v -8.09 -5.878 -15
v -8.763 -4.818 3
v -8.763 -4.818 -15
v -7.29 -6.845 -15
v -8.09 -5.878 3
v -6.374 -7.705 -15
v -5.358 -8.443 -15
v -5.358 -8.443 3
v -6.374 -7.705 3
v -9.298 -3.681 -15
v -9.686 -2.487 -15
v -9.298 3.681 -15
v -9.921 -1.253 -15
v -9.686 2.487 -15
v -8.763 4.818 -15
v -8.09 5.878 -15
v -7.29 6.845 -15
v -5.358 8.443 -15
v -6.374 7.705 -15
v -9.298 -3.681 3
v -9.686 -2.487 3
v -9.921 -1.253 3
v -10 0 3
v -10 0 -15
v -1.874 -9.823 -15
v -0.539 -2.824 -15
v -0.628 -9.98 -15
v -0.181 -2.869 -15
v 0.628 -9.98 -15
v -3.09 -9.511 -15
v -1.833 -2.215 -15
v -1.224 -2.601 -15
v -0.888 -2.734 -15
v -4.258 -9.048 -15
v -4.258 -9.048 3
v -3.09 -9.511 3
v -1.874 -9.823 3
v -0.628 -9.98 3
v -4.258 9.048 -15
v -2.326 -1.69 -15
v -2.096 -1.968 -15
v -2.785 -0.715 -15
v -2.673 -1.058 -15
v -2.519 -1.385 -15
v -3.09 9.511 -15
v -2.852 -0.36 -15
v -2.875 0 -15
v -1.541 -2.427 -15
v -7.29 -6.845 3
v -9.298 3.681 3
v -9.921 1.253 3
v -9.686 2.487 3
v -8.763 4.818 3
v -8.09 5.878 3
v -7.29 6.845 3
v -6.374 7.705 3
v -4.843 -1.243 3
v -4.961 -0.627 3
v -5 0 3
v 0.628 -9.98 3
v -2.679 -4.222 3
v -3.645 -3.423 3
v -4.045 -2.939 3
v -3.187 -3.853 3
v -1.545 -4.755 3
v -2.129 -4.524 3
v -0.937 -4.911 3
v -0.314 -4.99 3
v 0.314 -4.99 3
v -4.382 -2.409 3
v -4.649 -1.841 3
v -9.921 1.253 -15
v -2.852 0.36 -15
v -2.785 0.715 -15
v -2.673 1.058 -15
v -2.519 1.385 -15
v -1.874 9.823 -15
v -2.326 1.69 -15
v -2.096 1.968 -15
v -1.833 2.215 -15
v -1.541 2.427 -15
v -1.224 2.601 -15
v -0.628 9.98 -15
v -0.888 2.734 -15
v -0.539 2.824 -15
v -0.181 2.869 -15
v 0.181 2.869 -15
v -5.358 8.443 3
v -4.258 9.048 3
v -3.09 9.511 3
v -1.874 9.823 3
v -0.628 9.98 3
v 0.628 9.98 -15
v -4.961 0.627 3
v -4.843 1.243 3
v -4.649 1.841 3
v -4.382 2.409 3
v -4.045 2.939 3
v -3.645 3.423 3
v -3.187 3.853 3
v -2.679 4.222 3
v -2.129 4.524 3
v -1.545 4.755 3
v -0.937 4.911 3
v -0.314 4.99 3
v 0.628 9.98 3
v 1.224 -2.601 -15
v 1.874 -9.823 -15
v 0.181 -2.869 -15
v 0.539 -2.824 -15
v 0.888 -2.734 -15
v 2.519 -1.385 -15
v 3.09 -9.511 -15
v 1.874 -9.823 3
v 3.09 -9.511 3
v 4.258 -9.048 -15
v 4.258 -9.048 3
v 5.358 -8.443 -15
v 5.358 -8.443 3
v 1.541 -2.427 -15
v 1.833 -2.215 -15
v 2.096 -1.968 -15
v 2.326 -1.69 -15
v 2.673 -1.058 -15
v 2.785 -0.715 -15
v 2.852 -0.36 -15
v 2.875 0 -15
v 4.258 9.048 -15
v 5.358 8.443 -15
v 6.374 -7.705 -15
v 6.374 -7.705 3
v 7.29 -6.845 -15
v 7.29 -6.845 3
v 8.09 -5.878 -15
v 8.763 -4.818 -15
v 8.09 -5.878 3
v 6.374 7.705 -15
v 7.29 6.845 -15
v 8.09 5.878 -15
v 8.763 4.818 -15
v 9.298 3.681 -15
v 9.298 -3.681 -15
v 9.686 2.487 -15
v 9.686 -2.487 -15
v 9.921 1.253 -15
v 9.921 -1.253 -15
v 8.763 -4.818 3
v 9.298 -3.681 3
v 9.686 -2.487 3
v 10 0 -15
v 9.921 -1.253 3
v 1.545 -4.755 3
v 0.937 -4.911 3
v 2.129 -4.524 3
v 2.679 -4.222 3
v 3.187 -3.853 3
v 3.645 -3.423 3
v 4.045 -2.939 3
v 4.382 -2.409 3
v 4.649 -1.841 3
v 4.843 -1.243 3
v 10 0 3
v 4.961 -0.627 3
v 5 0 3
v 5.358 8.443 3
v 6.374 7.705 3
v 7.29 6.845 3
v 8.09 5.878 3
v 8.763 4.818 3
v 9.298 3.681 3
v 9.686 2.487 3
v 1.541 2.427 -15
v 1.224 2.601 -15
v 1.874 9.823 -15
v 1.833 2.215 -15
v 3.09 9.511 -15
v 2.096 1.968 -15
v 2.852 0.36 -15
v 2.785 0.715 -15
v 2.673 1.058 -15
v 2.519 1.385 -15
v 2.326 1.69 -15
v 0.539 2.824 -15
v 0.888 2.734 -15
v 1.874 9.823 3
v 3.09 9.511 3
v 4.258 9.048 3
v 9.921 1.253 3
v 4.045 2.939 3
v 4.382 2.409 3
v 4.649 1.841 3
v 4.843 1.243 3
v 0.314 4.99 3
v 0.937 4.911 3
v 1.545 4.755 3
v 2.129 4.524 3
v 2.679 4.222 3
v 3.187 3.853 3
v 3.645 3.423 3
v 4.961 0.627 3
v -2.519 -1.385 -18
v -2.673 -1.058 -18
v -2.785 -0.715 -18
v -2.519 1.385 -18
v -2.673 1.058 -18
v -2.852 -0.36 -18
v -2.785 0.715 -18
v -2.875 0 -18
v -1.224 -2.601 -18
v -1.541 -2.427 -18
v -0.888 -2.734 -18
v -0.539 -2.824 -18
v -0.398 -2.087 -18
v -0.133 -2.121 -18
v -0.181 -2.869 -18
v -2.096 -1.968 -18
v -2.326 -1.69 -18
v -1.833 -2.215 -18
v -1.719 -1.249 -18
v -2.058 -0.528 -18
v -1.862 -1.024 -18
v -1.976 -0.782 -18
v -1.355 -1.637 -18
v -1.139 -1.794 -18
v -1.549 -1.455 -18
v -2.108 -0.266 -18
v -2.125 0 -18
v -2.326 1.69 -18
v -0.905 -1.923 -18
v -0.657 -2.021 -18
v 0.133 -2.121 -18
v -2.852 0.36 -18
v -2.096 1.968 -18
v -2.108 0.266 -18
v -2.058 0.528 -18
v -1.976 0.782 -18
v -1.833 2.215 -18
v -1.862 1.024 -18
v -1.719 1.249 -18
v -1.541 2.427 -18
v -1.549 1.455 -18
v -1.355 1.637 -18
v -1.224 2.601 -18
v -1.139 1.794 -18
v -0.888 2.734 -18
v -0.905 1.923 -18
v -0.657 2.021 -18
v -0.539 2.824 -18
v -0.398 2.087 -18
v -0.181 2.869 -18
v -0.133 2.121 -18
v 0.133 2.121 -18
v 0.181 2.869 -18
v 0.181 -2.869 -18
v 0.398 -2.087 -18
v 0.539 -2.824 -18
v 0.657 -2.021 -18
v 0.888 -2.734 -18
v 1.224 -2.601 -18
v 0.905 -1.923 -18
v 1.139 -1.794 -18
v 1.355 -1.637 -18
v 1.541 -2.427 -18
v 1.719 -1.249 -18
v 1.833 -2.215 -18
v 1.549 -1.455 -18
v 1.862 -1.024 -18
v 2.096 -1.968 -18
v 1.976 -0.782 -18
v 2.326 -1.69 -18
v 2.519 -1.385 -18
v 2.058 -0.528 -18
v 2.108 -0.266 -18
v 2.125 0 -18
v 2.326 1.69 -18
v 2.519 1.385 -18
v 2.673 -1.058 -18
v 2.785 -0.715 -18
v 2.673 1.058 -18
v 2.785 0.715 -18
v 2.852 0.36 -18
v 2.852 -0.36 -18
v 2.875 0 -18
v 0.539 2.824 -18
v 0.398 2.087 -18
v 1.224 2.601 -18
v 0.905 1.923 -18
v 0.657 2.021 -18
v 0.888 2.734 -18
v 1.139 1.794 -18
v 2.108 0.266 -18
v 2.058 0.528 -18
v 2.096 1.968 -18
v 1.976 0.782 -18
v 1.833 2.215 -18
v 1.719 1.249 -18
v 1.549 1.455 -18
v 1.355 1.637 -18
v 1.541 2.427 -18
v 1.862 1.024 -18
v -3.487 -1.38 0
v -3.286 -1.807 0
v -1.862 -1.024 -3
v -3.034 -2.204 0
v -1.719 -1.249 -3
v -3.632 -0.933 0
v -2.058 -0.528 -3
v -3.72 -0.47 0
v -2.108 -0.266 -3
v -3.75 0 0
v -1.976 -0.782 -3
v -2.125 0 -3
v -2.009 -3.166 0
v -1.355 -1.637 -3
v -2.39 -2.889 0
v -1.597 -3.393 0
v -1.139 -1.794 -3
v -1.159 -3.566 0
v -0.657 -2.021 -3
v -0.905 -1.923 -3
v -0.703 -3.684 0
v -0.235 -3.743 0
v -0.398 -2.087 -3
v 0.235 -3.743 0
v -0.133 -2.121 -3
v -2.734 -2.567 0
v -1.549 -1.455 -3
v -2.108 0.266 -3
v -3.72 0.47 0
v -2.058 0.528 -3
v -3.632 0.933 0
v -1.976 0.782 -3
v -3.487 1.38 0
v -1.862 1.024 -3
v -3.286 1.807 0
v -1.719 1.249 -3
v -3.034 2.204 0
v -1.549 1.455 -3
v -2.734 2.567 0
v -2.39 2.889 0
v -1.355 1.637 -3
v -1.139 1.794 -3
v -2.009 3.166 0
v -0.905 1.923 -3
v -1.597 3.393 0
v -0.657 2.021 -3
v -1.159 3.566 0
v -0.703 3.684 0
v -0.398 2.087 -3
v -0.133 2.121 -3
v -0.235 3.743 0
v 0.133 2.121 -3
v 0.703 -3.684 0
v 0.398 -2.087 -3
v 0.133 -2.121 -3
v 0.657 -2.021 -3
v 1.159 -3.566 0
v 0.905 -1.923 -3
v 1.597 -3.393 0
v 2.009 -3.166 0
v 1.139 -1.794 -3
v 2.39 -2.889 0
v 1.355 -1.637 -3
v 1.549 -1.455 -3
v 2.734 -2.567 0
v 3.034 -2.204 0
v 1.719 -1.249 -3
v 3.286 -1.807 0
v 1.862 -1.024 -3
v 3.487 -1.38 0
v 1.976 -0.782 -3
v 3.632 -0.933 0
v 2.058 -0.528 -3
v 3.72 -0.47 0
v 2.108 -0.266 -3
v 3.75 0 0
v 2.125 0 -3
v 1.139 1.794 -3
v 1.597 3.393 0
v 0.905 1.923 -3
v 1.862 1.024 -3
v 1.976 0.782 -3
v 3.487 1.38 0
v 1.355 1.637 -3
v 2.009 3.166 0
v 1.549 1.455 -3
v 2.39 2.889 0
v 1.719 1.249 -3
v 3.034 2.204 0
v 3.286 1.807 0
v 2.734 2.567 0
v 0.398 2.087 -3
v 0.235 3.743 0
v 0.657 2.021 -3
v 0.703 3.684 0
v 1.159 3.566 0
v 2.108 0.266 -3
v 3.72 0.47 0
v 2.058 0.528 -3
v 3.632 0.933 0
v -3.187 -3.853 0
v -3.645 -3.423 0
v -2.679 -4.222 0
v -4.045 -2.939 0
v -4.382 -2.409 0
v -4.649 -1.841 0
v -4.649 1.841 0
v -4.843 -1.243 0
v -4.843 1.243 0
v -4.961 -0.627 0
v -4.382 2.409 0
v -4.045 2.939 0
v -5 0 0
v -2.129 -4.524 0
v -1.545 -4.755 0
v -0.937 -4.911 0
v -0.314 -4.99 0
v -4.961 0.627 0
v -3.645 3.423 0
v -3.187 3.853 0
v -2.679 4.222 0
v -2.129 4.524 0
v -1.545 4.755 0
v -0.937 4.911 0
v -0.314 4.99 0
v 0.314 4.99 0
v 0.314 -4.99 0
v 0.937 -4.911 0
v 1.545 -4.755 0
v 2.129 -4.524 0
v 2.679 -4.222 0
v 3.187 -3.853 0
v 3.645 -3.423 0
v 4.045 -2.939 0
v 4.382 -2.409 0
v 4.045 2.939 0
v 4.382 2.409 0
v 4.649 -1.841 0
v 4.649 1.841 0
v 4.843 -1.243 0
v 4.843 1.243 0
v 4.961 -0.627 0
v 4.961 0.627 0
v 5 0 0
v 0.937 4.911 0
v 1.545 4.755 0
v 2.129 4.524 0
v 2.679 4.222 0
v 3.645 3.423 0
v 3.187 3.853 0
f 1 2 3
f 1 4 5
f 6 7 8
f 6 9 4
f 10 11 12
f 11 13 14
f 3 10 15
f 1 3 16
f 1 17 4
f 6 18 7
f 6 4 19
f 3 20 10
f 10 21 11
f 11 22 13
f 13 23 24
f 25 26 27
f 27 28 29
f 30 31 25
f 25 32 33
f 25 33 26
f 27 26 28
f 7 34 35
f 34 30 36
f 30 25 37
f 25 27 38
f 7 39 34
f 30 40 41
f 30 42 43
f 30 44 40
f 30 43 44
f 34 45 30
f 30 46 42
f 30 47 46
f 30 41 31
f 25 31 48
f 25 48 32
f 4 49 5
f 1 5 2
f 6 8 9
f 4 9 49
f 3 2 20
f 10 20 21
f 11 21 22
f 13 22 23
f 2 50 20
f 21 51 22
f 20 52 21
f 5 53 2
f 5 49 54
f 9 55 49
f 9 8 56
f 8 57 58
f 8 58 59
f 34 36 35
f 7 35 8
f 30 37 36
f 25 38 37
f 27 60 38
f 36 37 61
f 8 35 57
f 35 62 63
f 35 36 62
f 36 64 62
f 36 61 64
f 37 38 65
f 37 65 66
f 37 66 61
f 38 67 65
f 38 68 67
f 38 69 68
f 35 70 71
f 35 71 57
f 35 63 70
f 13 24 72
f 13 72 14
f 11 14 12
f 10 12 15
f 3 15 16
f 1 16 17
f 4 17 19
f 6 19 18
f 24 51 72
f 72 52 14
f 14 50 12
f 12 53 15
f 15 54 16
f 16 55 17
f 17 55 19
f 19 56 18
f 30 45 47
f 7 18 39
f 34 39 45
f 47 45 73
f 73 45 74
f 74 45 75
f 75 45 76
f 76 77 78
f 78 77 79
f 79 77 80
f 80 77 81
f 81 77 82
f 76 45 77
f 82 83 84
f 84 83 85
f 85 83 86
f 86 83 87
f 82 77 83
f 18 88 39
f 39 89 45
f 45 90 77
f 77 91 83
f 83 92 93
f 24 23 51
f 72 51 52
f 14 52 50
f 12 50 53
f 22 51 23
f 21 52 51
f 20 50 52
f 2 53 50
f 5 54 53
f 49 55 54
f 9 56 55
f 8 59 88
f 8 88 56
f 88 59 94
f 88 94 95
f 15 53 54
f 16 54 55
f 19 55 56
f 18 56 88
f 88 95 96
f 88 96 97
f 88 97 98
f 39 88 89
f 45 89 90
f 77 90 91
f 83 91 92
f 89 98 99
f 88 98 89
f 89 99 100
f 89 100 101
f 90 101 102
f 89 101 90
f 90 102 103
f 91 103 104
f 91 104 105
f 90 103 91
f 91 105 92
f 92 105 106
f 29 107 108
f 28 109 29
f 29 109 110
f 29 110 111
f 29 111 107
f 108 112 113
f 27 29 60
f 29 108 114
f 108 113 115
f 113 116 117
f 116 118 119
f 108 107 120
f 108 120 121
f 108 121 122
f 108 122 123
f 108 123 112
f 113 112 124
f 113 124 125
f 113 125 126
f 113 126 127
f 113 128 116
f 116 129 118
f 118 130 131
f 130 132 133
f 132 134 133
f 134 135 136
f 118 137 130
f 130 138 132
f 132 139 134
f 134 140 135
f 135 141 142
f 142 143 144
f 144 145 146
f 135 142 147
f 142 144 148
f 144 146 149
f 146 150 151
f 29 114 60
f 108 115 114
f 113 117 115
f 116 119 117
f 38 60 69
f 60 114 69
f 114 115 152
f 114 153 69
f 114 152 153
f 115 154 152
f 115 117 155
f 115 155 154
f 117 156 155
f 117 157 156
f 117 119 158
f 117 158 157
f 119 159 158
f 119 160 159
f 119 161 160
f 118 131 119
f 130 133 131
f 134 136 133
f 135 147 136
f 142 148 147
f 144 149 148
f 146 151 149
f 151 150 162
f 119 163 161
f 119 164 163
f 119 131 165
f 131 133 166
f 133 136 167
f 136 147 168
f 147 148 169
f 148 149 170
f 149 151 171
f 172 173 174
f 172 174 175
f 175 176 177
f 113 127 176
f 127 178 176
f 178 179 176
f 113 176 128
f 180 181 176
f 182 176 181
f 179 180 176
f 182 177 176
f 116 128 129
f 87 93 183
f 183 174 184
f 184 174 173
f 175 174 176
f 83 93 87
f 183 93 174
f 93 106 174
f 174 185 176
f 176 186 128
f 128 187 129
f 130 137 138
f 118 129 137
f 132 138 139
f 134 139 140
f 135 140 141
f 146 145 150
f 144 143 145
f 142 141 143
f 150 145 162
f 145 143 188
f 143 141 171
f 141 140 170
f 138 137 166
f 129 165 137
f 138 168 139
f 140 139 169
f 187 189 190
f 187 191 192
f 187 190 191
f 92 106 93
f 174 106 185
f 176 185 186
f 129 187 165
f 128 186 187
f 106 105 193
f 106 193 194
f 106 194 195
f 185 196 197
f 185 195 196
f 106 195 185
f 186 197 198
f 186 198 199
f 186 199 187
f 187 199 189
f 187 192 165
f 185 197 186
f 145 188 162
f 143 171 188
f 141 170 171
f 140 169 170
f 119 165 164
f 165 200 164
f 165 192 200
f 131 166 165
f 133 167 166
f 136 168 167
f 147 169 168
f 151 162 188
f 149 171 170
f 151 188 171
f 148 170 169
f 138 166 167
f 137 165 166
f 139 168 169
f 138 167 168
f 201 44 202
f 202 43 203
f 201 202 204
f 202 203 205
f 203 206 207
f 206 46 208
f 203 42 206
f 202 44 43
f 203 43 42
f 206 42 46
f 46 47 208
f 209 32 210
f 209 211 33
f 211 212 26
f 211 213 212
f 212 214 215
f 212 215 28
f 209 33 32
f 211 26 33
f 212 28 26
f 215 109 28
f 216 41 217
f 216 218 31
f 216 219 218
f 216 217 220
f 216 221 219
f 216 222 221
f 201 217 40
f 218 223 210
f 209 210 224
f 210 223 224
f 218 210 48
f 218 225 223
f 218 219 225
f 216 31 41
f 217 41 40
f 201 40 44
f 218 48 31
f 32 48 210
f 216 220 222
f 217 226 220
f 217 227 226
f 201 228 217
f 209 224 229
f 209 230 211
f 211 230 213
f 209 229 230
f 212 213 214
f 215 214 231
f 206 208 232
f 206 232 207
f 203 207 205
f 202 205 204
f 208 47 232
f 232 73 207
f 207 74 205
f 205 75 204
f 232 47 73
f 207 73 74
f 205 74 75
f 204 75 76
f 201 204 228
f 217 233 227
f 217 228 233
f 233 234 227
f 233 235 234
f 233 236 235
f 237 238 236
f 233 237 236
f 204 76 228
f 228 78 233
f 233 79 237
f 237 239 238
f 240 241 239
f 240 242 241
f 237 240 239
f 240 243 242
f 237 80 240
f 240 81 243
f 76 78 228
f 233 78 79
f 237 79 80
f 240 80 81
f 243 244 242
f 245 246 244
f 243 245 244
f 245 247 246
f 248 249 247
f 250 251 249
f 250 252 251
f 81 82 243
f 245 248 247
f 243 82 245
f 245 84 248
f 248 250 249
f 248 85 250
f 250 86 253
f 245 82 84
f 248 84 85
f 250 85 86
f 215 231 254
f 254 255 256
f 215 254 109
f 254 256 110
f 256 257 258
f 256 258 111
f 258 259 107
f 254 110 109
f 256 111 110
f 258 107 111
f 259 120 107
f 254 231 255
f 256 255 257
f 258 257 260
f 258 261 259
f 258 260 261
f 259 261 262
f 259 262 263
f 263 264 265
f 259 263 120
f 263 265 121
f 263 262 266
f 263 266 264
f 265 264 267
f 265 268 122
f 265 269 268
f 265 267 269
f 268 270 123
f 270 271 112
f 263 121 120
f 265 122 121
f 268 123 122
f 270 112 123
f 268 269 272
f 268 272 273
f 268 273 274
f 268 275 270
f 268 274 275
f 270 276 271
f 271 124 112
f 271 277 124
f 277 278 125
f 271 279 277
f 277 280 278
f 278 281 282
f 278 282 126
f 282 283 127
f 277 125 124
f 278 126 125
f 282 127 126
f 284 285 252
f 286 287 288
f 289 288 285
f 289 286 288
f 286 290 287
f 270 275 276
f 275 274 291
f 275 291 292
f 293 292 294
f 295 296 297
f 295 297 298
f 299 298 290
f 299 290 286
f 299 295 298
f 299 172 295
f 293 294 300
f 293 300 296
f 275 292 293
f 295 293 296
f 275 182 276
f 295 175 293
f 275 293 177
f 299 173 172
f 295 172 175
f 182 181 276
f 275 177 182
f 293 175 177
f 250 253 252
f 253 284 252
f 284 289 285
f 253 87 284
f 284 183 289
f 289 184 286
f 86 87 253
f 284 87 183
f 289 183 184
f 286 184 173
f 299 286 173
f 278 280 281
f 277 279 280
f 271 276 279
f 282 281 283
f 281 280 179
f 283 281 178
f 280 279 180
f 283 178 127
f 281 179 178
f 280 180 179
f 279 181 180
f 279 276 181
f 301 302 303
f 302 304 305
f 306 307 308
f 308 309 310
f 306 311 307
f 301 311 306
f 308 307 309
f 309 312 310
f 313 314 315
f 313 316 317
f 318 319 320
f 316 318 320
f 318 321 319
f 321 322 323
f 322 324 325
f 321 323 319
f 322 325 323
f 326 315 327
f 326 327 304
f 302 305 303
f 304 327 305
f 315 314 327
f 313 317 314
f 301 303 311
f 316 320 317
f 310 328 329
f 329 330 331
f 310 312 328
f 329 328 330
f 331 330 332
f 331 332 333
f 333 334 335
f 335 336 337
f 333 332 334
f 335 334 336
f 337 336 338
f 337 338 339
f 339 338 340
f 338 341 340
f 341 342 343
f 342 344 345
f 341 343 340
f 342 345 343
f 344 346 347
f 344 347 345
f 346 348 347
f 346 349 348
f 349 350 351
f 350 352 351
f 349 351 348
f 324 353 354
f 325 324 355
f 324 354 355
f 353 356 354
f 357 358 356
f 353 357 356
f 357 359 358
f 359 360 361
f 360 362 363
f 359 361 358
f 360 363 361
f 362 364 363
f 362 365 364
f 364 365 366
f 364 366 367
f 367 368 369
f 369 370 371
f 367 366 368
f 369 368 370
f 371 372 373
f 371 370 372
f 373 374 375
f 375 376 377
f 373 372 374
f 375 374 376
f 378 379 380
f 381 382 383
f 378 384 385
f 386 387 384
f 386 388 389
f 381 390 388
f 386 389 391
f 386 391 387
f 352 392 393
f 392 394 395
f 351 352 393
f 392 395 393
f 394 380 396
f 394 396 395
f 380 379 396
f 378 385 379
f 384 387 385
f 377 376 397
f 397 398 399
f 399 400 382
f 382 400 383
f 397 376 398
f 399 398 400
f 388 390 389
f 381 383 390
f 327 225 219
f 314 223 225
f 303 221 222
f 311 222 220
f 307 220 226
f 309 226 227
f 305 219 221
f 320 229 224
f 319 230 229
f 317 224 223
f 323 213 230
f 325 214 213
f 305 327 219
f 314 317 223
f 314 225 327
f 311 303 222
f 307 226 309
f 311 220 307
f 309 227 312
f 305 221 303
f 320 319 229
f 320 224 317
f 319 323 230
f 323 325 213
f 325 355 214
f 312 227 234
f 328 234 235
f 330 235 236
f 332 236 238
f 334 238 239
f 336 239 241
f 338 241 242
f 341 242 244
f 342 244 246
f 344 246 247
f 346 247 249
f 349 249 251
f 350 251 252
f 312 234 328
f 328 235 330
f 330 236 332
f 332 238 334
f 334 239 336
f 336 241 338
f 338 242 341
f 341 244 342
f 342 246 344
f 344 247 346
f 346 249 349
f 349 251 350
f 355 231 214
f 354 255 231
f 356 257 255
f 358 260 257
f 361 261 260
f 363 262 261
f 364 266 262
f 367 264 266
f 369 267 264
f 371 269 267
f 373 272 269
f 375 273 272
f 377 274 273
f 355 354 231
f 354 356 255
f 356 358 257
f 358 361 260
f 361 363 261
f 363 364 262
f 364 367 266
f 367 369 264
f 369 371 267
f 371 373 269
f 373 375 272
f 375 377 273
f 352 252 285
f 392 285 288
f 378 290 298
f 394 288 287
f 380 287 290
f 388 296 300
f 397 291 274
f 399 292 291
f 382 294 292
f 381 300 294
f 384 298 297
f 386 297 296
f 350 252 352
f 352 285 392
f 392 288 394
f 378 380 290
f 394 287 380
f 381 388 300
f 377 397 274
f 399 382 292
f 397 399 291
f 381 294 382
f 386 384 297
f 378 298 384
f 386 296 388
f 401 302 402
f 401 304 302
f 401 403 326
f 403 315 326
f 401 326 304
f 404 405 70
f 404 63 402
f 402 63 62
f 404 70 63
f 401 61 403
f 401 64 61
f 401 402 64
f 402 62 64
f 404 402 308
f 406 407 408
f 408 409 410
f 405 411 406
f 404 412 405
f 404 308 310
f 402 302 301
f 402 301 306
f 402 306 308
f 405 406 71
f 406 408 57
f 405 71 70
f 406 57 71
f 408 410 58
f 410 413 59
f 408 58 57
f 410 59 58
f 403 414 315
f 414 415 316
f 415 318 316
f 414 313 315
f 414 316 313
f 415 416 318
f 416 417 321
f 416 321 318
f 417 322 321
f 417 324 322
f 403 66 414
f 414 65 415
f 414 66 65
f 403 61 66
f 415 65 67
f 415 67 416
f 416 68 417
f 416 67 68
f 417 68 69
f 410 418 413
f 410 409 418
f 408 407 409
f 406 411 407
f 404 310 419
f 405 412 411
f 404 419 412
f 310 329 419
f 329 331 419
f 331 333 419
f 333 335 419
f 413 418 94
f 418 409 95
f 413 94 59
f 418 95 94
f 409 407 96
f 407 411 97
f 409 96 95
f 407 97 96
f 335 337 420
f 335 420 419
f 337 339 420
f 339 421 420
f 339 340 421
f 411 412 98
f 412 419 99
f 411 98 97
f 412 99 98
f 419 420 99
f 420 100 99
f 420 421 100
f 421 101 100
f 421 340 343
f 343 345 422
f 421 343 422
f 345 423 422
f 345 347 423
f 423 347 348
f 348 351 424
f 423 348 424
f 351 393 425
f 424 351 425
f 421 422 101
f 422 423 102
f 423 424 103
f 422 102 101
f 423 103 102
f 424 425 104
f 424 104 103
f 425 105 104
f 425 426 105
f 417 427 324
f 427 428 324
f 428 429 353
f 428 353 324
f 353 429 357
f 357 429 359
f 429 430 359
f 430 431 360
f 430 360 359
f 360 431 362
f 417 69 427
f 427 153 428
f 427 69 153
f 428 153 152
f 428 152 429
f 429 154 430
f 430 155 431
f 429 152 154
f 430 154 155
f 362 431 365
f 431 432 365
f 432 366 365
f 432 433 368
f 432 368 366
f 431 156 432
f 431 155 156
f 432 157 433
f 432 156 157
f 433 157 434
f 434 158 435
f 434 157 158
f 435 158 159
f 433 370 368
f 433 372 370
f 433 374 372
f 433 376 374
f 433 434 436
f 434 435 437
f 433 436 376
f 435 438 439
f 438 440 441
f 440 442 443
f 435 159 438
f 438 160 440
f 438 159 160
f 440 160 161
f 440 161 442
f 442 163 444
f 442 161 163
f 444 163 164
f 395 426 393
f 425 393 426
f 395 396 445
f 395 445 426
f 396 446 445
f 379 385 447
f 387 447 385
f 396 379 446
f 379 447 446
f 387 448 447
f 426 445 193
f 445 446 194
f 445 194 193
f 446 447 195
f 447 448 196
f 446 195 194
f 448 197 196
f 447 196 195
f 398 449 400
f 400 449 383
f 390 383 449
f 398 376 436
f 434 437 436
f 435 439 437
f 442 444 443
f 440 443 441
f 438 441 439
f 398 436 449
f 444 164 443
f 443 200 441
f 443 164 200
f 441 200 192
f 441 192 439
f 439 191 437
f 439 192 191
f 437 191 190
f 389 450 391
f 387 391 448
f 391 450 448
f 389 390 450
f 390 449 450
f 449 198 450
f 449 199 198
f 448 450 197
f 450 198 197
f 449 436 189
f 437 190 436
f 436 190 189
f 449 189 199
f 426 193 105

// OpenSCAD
$fn = 50;

difference() {
	union() {
		translate(v = [0, 0, -15.0]) {
			cylinder(h = 18, r = 10.0);
		}
		#translate(v = [0, 0, -18.0]) {
			cylinder(h = 18, r = 2.875);
		}
	}
	union() {
		translate(v = [0, 0, 0]) {
			rotate(a = [0, 0, 0]) {
				difference() {
					union() {
						translate(v = [0, 0, -18.0]) {
							cylinder(h = 18, r = 2.0);
						}
						translate(v = [0, 0, -3]) {
							cylinder(h = 3, r1 = 2.125, r2 = 3.75);
						}
						translate(v = [0, 0, -18.0]) {
							cylinder(h = 18, r = 2.125);
						}
						translate(v = [0, 0, -18.0]) {
							cylinder(h = 18, r = 2.0);
						}
					}
					union();
				}
			}
		}
		#cylinder(h = 3, r = 5.0);
	}
}
